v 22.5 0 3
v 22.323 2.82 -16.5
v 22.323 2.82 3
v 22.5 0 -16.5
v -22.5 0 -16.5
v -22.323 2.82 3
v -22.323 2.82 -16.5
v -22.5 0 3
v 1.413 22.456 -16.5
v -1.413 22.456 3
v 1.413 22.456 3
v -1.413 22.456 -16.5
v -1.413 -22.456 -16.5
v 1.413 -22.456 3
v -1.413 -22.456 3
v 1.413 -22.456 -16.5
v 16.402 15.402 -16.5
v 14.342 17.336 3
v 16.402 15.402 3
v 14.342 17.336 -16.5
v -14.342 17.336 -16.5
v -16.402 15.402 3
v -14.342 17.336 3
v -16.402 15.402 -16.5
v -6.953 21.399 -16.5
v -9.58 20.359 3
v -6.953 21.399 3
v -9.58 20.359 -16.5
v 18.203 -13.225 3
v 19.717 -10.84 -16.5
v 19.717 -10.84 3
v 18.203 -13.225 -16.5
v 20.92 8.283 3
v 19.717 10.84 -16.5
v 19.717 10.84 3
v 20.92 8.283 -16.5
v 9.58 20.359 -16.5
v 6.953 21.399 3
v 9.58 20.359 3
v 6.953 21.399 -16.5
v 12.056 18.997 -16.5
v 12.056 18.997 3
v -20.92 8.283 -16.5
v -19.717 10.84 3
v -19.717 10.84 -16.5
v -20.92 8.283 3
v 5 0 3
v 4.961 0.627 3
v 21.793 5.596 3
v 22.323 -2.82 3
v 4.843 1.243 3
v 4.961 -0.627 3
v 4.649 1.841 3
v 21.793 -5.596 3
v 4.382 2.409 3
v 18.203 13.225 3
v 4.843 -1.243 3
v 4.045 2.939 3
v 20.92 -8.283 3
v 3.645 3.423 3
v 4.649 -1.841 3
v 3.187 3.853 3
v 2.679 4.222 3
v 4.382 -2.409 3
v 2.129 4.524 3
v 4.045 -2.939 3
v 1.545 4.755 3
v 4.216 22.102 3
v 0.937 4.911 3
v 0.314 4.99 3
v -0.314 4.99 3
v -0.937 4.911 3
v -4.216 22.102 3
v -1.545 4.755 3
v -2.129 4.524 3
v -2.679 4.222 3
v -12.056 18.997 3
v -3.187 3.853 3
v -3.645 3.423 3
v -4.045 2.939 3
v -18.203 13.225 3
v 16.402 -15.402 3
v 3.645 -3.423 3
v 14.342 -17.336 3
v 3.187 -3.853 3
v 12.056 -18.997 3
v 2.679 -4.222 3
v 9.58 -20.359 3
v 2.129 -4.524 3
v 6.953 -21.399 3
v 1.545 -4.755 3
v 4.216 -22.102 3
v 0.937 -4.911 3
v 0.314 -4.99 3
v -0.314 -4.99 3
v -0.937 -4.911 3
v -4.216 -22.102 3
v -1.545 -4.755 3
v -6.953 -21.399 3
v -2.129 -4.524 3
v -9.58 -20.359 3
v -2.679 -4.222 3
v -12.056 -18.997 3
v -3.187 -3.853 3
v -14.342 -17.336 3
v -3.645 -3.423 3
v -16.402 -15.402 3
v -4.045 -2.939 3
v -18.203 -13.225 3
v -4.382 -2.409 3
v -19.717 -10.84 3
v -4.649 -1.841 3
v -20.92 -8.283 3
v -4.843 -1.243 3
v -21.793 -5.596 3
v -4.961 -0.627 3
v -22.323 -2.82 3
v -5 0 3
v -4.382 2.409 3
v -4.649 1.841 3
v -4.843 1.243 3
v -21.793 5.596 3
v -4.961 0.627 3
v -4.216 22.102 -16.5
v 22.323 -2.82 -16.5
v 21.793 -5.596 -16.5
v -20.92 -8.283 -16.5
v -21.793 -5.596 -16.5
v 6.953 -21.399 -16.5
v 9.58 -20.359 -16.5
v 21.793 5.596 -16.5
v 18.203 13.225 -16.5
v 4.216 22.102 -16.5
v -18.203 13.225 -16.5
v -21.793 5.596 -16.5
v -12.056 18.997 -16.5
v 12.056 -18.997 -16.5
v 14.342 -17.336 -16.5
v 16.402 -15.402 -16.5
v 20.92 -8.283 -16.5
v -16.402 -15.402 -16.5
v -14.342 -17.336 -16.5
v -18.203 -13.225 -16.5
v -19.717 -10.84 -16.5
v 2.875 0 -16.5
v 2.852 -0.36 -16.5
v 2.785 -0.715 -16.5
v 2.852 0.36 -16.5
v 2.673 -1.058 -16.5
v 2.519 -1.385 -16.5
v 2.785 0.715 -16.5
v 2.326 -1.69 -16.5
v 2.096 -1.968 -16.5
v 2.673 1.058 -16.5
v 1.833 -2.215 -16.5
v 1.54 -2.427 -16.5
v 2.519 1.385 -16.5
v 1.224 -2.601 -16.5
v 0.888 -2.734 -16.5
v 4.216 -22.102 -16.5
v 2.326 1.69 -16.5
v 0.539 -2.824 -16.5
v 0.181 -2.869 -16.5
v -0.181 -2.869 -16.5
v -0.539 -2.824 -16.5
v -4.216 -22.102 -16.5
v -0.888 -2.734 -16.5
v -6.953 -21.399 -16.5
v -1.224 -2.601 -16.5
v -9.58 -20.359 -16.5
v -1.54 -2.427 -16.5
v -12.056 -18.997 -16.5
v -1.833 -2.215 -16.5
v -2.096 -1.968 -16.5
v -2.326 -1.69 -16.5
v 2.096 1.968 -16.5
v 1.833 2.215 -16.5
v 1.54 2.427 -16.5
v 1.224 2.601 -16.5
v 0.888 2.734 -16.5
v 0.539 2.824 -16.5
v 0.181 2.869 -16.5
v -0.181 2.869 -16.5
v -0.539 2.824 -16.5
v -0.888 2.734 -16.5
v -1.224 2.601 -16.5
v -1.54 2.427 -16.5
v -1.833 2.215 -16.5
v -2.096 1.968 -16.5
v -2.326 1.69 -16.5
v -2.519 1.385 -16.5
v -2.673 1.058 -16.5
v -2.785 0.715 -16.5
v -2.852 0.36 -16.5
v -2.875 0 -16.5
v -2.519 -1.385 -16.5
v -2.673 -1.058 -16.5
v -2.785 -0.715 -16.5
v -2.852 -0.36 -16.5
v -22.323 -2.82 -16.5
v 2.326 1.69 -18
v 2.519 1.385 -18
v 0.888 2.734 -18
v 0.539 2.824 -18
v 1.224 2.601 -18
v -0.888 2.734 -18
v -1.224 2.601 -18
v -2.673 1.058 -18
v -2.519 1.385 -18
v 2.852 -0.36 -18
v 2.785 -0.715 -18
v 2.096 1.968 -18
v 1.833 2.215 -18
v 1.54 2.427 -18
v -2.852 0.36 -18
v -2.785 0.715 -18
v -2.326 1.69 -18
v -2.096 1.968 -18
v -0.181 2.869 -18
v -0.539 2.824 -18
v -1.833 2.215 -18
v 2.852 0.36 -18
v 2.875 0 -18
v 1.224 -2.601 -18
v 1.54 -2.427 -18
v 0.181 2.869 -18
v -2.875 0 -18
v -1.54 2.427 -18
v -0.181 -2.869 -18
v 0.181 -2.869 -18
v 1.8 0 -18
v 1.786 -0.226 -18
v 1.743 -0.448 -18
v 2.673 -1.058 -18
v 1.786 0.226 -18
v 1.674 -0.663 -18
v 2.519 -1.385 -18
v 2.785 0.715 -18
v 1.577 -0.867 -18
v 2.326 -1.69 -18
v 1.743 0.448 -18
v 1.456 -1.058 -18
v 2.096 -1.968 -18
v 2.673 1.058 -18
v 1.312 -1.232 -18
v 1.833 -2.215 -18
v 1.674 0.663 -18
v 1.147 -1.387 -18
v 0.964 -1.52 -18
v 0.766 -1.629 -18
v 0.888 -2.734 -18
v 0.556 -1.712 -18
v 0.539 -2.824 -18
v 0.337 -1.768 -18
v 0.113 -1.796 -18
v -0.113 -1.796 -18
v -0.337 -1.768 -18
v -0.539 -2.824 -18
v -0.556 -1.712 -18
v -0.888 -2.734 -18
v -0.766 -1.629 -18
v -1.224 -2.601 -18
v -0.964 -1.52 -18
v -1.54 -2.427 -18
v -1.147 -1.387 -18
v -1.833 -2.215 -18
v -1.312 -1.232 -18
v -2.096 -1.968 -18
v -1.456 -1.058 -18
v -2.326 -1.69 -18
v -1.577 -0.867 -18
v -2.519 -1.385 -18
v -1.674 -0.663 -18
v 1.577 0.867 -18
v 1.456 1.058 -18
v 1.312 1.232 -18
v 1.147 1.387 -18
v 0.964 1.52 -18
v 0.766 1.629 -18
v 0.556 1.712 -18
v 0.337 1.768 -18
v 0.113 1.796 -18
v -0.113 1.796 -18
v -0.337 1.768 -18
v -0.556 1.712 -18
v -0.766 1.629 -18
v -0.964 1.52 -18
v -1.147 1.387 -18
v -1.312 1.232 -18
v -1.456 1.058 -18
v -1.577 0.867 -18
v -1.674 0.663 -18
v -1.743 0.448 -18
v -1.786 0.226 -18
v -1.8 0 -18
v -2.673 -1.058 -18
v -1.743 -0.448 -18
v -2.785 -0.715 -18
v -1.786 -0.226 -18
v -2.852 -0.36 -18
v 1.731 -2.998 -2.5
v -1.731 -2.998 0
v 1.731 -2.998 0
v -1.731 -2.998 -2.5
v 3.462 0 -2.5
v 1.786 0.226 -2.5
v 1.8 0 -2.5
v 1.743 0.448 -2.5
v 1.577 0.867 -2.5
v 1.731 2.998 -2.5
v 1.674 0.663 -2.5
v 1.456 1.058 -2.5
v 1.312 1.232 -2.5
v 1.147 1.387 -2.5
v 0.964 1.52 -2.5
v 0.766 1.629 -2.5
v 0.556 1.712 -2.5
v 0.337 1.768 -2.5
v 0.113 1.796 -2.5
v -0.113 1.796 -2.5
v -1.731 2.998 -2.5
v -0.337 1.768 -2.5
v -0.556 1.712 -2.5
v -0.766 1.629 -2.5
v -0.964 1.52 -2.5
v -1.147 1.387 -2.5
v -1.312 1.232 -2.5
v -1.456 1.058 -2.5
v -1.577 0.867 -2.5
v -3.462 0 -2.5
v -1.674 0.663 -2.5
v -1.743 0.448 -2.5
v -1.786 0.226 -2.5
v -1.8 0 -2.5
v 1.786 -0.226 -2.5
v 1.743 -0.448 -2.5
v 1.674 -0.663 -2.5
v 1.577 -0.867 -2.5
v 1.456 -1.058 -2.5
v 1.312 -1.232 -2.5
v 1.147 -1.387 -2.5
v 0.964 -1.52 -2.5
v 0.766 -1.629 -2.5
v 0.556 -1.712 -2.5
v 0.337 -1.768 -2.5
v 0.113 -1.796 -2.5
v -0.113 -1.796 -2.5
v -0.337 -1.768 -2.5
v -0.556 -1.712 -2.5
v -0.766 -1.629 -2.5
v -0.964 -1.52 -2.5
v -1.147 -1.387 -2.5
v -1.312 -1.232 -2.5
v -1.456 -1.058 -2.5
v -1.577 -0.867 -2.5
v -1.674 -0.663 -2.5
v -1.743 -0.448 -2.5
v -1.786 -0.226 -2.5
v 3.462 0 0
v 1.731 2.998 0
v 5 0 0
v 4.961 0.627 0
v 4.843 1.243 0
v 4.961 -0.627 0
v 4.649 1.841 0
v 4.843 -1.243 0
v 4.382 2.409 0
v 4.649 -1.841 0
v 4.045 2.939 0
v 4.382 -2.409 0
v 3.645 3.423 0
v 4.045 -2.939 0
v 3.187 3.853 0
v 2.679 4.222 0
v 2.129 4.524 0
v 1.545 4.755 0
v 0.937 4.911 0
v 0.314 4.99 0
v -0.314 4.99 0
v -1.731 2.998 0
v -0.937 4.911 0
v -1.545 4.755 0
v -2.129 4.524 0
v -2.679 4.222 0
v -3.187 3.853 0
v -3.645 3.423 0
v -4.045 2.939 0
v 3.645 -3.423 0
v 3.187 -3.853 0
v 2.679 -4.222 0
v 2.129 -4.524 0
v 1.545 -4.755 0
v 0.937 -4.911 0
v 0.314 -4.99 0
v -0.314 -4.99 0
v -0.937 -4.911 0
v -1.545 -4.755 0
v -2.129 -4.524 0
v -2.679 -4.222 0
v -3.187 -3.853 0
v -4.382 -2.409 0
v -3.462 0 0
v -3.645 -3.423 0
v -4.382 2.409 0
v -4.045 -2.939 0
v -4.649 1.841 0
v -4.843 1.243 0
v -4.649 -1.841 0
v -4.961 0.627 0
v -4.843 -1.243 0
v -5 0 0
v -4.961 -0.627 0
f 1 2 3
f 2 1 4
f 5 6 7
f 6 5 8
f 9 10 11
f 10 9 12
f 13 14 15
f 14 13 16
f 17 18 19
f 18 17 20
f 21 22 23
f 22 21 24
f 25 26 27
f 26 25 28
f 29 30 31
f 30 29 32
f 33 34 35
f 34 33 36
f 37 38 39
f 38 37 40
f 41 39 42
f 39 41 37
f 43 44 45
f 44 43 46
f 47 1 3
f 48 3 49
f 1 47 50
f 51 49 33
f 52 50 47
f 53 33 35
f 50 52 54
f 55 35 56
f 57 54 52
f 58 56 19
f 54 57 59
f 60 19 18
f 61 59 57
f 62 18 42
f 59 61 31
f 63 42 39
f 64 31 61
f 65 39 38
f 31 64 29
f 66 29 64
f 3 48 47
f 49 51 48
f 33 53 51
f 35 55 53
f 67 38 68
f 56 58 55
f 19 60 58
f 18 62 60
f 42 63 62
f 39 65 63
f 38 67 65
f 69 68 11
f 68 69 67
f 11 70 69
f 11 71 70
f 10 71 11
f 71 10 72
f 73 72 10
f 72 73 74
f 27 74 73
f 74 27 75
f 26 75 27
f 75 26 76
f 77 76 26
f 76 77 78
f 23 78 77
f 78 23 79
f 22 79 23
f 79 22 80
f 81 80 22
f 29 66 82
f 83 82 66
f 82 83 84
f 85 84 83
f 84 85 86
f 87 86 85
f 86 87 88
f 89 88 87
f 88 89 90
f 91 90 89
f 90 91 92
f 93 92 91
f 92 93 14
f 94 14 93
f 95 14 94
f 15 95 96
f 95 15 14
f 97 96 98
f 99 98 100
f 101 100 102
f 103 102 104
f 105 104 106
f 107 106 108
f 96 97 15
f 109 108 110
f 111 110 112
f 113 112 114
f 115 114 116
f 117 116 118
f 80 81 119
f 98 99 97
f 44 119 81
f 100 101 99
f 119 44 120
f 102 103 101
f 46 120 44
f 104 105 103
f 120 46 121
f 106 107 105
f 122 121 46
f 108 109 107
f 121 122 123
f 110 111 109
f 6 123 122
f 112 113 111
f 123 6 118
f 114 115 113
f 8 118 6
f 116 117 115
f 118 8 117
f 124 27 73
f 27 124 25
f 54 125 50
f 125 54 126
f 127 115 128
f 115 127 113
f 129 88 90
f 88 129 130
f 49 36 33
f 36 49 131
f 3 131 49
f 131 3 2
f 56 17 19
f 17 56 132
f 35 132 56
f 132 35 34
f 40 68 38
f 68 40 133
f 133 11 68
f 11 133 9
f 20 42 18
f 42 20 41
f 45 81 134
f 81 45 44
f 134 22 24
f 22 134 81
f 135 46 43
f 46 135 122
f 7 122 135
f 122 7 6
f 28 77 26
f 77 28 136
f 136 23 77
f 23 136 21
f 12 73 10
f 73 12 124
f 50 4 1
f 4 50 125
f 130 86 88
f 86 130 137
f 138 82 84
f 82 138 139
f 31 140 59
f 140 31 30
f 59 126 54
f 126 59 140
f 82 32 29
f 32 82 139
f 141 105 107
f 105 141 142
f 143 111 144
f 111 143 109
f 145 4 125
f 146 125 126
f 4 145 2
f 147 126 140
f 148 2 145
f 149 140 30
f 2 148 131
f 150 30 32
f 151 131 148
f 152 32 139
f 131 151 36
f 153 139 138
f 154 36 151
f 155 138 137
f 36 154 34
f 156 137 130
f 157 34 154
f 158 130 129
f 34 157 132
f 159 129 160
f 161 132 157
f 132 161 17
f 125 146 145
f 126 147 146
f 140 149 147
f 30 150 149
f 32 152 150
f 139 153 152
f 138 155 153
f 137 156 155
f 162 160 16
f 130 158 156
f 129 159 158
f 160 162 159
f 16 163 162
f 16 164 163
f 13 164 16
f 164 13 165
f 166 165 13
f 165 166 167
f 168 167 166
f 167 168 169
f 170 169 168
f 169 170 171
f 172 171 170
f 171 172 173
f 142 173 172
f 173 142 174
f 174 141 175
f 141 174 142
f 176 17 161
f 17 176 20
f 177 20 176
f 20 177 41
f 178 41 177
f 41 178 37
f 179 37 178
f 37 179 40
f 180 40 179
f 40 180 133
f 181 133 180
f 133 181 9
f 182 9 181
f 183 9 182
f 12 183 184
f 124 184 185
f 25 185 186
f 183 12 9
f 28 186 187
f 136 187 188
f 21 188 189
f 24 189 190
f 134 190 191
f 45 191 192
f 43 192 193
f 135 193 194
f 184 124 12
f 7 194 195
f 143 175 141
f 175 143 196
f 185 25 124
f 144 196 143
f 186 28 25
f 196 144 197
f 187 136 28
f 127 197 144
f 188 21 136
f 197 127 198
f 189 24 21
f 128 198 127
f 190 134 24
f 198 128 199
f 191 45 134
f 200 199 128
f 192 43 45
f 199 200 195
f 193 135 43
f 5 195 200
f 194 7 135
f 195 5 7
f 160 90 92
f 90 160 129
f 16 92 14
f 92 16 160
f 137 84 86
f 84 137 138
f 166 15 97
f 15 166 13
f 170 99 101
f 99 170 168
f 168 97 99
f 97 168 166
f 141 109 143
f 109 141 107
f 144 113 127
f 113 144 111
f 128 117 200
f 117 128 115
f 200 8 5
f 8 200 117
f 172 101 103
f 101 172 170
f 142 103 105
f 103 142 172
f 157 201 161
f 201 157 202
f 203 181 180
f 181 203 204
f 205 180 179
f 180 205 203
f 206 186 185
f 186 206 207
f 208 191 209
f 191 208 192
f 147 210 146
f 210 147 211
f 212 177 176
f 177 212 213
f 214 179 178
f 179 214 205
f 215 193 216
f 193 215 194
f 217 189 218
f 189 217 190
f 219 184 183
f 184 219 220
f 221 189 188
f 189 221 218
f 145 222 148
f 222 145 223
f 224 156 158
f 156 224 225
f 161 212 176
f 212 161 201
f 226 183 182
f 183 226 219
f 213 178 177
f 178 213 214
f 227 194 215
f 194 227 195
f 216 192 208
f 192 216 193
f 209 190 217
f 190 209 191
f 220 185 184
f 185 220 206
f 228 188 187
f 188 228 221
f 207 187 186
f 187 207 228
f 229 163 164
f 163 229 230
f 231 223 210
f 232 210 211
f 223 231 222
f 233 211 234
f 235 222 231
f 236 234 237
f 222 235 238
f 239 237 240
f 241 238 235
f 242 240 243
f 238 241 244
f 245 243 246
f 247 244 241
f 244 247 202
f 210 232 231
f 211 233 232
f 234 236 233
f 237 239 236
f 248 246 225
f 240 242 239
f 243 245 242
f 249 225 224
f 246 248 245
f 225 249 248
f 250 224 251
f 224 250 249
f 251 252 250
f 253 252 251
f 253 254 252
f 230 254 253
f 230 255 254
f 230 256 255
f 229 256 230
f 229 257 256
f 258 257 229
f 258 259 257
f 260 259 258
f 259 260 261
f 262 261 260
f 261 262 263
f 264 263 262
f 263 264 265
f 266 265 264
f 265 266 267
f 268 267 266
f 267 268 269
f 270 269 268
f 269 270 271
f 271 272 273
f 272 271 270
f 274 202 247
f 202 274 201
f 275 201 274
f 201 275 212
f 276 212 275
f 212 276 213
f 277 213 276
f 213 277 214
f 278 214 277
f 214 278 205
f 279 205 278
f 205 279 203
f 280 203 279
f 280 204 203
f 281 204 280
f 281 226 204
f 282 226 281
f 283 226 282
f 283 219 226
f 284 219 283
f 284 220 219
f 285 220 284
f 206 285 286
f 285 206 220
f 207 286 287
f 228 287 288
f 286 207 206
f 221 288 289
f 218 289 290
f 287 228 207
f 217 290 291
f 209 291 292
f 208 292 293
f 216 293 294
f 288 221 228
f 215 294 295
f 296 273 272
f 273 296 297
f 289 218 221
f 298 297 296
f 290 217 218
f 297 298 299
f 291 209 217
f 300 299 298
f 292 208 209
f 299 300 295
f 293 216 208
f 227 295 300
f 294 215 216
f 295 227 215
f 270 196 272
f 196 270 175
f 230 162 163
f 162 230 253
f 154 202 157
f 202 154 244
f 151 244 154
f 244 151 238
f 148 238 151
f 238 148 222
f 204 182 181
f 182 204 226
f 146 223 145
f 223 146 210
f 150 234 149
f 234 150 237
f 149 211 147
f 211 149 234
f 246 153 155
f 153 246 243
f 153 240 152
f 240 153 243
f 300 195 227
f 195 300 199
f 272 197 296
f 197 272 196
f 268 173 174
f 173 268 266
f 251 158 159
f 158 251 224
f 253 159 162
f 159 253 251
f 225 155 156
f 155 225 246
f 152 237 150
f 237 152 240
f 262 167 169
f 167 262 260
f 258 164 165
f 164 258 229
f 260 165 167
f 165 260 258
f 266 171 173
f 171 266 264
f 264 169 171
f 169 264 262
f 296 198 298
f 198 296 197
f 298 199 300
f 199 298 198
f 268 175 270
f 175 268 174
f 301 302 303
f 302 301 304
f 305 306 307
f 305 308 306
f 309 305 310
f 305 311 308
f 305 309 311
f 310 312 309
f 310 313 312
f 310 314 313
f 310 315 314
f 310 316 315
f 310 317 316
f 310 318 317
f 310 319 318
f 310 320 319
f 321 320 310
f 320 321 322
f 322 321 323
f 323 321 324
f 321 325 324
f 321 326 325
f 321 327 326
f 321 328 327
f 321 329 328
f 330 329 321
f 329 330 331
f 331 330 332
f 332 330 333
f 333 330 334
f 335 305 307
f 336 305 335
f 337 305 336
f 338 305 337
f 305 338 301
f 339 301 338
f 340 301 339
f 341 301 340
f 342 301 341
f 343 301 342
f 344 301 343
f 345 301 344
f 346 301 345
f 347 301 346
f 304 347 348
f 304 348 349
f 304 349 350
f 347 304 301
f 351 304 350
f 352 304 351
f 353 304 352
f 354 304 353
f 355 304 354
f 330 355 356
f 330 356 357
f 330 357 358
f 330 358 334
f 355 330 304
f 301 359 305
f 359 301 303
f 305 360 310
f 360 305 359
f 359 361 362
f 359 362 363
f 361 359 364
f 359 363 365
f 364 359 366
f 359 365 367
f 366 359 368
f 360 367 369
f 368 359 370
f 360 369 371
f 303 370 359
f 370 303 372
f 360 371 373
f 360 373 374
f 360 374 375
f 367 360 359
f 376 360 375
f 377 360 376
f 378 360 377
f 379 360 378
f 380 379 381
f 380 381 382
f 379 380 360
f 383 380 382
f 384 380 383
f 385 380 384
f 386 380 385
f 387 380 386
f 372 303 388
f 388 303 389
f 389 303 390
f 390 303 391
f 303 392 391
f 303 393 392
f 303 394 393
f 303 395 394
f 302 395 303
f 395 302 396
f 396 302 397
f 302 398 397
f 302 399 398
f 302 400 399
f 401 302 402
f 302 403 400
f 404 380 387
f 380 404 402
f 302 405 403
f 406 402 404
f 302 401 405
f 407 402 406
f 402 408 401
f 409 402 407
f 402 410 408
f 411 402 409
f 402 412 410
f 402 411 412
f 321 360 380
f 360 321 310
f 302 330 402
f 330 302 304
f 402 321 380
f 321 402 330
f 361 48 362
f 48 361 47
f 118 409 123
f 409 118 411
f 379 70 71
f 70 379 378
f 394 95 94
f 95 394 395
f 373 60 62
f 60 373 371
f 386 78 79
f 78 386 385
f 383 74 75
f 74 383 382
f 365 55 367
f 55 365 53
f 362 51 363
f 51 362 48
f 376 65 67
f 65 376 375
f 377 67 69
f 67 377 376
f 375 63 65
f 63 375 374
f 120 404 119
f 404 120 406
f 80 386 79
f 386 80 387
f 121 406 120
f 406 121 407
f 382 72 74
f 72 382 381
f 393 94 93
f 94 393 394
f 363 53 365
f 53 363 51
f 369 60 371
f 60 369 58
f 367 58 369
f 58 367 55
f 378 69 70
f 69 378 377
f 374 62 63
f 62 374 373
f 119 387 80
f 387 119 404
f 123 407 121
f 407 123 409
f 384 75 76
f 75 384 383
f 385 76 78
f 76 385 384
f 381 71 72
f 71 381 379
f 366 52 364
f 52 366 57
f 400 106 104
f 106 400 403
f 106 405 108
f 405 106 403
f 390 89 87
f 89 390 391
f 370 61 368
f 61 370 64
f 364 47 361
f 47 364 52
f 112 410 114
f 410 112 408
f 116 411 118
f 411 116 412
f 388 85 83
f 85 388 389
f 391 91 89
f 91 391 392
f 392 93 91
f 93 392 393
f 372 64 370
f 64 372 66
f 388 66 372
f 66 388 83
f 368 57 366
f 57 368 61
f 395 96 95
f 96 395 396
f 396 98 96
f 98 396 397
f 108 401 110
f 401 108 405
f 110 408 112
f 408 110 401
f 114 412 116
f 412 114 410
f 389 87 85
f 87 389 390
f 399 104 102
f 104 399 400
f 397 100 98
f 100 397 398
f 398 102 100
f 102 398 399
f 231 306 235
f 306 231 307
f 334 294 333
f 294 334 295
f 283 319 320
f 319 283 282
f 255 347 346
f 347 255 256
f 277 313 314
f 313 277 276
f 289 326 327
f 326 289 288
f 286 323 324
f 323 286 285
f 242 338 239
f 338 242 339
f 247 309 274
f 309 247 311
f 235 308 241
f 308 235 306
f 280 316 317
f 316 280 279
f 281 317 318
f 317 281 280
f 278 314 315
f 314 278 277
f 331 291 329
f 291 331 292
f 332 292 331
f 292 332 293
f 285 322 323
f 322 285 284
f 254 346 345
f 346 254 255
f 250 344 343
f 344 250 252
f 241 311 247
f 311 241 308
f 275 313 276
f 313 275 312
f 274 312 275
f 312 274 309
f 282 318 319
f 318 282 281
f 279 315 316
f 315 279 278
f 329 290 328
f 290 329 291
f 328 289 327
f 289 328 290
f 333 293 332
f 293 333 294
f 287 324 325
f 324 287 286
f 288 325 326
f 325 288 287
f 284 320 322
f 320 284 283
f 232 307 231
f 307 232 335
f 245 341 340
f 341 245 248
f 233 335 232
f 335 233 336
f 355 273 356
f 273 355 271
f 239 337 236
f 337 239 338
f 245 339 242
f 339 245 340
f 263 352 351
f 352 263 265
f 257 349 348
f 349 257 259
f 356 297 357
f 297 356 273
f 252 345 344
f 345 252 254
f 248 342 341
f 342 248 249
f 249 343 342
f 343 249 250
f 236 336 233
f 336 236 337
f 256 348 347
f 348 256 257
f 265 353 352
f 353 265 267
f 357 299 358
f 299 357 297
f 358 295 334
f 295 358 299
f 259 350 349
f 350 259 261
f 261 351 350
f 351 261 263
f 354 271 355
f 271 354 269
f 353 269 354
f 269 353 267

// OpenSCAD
$fn = 50;

difference() {
	union() {
		translate(v = [0, 0, -16.5]) {
			cylinder(h = 19.5, r = 22.5);
		}
		#translate(v = [0, 0, -18.0]) {
			cylinder(h = 18, r = 2.875);
		}
	}
	union() {
		translate(v = [0, 0, 0]) {
			rotate(a = [0, 0, 0]) {
				difference() {
					union() {
						translate(v = [0, 0, -2.5]) {
							linear_extrude(height = 2.5) {
								polygon(points = [[3.4619999999999997, 0.0], [1.7310000000000003, 2.9981799479017264], [-1.7309999999999992, 2.9981799479017264], [-3.4619999999999997, 4.2397272186481365e-16], [-1.7310000000000014, -2.998179947901726], [1.7309999999999977, -2.9981799479017277]]);
							}
						}
					}
					union();
				}
			}
		}
		#cylinder(h = 3, r = 5.0);
		#translate(v = [0, 0, -100.0]) {
			cylinder(h = 200, r = 1.8);
		}
	}
}
